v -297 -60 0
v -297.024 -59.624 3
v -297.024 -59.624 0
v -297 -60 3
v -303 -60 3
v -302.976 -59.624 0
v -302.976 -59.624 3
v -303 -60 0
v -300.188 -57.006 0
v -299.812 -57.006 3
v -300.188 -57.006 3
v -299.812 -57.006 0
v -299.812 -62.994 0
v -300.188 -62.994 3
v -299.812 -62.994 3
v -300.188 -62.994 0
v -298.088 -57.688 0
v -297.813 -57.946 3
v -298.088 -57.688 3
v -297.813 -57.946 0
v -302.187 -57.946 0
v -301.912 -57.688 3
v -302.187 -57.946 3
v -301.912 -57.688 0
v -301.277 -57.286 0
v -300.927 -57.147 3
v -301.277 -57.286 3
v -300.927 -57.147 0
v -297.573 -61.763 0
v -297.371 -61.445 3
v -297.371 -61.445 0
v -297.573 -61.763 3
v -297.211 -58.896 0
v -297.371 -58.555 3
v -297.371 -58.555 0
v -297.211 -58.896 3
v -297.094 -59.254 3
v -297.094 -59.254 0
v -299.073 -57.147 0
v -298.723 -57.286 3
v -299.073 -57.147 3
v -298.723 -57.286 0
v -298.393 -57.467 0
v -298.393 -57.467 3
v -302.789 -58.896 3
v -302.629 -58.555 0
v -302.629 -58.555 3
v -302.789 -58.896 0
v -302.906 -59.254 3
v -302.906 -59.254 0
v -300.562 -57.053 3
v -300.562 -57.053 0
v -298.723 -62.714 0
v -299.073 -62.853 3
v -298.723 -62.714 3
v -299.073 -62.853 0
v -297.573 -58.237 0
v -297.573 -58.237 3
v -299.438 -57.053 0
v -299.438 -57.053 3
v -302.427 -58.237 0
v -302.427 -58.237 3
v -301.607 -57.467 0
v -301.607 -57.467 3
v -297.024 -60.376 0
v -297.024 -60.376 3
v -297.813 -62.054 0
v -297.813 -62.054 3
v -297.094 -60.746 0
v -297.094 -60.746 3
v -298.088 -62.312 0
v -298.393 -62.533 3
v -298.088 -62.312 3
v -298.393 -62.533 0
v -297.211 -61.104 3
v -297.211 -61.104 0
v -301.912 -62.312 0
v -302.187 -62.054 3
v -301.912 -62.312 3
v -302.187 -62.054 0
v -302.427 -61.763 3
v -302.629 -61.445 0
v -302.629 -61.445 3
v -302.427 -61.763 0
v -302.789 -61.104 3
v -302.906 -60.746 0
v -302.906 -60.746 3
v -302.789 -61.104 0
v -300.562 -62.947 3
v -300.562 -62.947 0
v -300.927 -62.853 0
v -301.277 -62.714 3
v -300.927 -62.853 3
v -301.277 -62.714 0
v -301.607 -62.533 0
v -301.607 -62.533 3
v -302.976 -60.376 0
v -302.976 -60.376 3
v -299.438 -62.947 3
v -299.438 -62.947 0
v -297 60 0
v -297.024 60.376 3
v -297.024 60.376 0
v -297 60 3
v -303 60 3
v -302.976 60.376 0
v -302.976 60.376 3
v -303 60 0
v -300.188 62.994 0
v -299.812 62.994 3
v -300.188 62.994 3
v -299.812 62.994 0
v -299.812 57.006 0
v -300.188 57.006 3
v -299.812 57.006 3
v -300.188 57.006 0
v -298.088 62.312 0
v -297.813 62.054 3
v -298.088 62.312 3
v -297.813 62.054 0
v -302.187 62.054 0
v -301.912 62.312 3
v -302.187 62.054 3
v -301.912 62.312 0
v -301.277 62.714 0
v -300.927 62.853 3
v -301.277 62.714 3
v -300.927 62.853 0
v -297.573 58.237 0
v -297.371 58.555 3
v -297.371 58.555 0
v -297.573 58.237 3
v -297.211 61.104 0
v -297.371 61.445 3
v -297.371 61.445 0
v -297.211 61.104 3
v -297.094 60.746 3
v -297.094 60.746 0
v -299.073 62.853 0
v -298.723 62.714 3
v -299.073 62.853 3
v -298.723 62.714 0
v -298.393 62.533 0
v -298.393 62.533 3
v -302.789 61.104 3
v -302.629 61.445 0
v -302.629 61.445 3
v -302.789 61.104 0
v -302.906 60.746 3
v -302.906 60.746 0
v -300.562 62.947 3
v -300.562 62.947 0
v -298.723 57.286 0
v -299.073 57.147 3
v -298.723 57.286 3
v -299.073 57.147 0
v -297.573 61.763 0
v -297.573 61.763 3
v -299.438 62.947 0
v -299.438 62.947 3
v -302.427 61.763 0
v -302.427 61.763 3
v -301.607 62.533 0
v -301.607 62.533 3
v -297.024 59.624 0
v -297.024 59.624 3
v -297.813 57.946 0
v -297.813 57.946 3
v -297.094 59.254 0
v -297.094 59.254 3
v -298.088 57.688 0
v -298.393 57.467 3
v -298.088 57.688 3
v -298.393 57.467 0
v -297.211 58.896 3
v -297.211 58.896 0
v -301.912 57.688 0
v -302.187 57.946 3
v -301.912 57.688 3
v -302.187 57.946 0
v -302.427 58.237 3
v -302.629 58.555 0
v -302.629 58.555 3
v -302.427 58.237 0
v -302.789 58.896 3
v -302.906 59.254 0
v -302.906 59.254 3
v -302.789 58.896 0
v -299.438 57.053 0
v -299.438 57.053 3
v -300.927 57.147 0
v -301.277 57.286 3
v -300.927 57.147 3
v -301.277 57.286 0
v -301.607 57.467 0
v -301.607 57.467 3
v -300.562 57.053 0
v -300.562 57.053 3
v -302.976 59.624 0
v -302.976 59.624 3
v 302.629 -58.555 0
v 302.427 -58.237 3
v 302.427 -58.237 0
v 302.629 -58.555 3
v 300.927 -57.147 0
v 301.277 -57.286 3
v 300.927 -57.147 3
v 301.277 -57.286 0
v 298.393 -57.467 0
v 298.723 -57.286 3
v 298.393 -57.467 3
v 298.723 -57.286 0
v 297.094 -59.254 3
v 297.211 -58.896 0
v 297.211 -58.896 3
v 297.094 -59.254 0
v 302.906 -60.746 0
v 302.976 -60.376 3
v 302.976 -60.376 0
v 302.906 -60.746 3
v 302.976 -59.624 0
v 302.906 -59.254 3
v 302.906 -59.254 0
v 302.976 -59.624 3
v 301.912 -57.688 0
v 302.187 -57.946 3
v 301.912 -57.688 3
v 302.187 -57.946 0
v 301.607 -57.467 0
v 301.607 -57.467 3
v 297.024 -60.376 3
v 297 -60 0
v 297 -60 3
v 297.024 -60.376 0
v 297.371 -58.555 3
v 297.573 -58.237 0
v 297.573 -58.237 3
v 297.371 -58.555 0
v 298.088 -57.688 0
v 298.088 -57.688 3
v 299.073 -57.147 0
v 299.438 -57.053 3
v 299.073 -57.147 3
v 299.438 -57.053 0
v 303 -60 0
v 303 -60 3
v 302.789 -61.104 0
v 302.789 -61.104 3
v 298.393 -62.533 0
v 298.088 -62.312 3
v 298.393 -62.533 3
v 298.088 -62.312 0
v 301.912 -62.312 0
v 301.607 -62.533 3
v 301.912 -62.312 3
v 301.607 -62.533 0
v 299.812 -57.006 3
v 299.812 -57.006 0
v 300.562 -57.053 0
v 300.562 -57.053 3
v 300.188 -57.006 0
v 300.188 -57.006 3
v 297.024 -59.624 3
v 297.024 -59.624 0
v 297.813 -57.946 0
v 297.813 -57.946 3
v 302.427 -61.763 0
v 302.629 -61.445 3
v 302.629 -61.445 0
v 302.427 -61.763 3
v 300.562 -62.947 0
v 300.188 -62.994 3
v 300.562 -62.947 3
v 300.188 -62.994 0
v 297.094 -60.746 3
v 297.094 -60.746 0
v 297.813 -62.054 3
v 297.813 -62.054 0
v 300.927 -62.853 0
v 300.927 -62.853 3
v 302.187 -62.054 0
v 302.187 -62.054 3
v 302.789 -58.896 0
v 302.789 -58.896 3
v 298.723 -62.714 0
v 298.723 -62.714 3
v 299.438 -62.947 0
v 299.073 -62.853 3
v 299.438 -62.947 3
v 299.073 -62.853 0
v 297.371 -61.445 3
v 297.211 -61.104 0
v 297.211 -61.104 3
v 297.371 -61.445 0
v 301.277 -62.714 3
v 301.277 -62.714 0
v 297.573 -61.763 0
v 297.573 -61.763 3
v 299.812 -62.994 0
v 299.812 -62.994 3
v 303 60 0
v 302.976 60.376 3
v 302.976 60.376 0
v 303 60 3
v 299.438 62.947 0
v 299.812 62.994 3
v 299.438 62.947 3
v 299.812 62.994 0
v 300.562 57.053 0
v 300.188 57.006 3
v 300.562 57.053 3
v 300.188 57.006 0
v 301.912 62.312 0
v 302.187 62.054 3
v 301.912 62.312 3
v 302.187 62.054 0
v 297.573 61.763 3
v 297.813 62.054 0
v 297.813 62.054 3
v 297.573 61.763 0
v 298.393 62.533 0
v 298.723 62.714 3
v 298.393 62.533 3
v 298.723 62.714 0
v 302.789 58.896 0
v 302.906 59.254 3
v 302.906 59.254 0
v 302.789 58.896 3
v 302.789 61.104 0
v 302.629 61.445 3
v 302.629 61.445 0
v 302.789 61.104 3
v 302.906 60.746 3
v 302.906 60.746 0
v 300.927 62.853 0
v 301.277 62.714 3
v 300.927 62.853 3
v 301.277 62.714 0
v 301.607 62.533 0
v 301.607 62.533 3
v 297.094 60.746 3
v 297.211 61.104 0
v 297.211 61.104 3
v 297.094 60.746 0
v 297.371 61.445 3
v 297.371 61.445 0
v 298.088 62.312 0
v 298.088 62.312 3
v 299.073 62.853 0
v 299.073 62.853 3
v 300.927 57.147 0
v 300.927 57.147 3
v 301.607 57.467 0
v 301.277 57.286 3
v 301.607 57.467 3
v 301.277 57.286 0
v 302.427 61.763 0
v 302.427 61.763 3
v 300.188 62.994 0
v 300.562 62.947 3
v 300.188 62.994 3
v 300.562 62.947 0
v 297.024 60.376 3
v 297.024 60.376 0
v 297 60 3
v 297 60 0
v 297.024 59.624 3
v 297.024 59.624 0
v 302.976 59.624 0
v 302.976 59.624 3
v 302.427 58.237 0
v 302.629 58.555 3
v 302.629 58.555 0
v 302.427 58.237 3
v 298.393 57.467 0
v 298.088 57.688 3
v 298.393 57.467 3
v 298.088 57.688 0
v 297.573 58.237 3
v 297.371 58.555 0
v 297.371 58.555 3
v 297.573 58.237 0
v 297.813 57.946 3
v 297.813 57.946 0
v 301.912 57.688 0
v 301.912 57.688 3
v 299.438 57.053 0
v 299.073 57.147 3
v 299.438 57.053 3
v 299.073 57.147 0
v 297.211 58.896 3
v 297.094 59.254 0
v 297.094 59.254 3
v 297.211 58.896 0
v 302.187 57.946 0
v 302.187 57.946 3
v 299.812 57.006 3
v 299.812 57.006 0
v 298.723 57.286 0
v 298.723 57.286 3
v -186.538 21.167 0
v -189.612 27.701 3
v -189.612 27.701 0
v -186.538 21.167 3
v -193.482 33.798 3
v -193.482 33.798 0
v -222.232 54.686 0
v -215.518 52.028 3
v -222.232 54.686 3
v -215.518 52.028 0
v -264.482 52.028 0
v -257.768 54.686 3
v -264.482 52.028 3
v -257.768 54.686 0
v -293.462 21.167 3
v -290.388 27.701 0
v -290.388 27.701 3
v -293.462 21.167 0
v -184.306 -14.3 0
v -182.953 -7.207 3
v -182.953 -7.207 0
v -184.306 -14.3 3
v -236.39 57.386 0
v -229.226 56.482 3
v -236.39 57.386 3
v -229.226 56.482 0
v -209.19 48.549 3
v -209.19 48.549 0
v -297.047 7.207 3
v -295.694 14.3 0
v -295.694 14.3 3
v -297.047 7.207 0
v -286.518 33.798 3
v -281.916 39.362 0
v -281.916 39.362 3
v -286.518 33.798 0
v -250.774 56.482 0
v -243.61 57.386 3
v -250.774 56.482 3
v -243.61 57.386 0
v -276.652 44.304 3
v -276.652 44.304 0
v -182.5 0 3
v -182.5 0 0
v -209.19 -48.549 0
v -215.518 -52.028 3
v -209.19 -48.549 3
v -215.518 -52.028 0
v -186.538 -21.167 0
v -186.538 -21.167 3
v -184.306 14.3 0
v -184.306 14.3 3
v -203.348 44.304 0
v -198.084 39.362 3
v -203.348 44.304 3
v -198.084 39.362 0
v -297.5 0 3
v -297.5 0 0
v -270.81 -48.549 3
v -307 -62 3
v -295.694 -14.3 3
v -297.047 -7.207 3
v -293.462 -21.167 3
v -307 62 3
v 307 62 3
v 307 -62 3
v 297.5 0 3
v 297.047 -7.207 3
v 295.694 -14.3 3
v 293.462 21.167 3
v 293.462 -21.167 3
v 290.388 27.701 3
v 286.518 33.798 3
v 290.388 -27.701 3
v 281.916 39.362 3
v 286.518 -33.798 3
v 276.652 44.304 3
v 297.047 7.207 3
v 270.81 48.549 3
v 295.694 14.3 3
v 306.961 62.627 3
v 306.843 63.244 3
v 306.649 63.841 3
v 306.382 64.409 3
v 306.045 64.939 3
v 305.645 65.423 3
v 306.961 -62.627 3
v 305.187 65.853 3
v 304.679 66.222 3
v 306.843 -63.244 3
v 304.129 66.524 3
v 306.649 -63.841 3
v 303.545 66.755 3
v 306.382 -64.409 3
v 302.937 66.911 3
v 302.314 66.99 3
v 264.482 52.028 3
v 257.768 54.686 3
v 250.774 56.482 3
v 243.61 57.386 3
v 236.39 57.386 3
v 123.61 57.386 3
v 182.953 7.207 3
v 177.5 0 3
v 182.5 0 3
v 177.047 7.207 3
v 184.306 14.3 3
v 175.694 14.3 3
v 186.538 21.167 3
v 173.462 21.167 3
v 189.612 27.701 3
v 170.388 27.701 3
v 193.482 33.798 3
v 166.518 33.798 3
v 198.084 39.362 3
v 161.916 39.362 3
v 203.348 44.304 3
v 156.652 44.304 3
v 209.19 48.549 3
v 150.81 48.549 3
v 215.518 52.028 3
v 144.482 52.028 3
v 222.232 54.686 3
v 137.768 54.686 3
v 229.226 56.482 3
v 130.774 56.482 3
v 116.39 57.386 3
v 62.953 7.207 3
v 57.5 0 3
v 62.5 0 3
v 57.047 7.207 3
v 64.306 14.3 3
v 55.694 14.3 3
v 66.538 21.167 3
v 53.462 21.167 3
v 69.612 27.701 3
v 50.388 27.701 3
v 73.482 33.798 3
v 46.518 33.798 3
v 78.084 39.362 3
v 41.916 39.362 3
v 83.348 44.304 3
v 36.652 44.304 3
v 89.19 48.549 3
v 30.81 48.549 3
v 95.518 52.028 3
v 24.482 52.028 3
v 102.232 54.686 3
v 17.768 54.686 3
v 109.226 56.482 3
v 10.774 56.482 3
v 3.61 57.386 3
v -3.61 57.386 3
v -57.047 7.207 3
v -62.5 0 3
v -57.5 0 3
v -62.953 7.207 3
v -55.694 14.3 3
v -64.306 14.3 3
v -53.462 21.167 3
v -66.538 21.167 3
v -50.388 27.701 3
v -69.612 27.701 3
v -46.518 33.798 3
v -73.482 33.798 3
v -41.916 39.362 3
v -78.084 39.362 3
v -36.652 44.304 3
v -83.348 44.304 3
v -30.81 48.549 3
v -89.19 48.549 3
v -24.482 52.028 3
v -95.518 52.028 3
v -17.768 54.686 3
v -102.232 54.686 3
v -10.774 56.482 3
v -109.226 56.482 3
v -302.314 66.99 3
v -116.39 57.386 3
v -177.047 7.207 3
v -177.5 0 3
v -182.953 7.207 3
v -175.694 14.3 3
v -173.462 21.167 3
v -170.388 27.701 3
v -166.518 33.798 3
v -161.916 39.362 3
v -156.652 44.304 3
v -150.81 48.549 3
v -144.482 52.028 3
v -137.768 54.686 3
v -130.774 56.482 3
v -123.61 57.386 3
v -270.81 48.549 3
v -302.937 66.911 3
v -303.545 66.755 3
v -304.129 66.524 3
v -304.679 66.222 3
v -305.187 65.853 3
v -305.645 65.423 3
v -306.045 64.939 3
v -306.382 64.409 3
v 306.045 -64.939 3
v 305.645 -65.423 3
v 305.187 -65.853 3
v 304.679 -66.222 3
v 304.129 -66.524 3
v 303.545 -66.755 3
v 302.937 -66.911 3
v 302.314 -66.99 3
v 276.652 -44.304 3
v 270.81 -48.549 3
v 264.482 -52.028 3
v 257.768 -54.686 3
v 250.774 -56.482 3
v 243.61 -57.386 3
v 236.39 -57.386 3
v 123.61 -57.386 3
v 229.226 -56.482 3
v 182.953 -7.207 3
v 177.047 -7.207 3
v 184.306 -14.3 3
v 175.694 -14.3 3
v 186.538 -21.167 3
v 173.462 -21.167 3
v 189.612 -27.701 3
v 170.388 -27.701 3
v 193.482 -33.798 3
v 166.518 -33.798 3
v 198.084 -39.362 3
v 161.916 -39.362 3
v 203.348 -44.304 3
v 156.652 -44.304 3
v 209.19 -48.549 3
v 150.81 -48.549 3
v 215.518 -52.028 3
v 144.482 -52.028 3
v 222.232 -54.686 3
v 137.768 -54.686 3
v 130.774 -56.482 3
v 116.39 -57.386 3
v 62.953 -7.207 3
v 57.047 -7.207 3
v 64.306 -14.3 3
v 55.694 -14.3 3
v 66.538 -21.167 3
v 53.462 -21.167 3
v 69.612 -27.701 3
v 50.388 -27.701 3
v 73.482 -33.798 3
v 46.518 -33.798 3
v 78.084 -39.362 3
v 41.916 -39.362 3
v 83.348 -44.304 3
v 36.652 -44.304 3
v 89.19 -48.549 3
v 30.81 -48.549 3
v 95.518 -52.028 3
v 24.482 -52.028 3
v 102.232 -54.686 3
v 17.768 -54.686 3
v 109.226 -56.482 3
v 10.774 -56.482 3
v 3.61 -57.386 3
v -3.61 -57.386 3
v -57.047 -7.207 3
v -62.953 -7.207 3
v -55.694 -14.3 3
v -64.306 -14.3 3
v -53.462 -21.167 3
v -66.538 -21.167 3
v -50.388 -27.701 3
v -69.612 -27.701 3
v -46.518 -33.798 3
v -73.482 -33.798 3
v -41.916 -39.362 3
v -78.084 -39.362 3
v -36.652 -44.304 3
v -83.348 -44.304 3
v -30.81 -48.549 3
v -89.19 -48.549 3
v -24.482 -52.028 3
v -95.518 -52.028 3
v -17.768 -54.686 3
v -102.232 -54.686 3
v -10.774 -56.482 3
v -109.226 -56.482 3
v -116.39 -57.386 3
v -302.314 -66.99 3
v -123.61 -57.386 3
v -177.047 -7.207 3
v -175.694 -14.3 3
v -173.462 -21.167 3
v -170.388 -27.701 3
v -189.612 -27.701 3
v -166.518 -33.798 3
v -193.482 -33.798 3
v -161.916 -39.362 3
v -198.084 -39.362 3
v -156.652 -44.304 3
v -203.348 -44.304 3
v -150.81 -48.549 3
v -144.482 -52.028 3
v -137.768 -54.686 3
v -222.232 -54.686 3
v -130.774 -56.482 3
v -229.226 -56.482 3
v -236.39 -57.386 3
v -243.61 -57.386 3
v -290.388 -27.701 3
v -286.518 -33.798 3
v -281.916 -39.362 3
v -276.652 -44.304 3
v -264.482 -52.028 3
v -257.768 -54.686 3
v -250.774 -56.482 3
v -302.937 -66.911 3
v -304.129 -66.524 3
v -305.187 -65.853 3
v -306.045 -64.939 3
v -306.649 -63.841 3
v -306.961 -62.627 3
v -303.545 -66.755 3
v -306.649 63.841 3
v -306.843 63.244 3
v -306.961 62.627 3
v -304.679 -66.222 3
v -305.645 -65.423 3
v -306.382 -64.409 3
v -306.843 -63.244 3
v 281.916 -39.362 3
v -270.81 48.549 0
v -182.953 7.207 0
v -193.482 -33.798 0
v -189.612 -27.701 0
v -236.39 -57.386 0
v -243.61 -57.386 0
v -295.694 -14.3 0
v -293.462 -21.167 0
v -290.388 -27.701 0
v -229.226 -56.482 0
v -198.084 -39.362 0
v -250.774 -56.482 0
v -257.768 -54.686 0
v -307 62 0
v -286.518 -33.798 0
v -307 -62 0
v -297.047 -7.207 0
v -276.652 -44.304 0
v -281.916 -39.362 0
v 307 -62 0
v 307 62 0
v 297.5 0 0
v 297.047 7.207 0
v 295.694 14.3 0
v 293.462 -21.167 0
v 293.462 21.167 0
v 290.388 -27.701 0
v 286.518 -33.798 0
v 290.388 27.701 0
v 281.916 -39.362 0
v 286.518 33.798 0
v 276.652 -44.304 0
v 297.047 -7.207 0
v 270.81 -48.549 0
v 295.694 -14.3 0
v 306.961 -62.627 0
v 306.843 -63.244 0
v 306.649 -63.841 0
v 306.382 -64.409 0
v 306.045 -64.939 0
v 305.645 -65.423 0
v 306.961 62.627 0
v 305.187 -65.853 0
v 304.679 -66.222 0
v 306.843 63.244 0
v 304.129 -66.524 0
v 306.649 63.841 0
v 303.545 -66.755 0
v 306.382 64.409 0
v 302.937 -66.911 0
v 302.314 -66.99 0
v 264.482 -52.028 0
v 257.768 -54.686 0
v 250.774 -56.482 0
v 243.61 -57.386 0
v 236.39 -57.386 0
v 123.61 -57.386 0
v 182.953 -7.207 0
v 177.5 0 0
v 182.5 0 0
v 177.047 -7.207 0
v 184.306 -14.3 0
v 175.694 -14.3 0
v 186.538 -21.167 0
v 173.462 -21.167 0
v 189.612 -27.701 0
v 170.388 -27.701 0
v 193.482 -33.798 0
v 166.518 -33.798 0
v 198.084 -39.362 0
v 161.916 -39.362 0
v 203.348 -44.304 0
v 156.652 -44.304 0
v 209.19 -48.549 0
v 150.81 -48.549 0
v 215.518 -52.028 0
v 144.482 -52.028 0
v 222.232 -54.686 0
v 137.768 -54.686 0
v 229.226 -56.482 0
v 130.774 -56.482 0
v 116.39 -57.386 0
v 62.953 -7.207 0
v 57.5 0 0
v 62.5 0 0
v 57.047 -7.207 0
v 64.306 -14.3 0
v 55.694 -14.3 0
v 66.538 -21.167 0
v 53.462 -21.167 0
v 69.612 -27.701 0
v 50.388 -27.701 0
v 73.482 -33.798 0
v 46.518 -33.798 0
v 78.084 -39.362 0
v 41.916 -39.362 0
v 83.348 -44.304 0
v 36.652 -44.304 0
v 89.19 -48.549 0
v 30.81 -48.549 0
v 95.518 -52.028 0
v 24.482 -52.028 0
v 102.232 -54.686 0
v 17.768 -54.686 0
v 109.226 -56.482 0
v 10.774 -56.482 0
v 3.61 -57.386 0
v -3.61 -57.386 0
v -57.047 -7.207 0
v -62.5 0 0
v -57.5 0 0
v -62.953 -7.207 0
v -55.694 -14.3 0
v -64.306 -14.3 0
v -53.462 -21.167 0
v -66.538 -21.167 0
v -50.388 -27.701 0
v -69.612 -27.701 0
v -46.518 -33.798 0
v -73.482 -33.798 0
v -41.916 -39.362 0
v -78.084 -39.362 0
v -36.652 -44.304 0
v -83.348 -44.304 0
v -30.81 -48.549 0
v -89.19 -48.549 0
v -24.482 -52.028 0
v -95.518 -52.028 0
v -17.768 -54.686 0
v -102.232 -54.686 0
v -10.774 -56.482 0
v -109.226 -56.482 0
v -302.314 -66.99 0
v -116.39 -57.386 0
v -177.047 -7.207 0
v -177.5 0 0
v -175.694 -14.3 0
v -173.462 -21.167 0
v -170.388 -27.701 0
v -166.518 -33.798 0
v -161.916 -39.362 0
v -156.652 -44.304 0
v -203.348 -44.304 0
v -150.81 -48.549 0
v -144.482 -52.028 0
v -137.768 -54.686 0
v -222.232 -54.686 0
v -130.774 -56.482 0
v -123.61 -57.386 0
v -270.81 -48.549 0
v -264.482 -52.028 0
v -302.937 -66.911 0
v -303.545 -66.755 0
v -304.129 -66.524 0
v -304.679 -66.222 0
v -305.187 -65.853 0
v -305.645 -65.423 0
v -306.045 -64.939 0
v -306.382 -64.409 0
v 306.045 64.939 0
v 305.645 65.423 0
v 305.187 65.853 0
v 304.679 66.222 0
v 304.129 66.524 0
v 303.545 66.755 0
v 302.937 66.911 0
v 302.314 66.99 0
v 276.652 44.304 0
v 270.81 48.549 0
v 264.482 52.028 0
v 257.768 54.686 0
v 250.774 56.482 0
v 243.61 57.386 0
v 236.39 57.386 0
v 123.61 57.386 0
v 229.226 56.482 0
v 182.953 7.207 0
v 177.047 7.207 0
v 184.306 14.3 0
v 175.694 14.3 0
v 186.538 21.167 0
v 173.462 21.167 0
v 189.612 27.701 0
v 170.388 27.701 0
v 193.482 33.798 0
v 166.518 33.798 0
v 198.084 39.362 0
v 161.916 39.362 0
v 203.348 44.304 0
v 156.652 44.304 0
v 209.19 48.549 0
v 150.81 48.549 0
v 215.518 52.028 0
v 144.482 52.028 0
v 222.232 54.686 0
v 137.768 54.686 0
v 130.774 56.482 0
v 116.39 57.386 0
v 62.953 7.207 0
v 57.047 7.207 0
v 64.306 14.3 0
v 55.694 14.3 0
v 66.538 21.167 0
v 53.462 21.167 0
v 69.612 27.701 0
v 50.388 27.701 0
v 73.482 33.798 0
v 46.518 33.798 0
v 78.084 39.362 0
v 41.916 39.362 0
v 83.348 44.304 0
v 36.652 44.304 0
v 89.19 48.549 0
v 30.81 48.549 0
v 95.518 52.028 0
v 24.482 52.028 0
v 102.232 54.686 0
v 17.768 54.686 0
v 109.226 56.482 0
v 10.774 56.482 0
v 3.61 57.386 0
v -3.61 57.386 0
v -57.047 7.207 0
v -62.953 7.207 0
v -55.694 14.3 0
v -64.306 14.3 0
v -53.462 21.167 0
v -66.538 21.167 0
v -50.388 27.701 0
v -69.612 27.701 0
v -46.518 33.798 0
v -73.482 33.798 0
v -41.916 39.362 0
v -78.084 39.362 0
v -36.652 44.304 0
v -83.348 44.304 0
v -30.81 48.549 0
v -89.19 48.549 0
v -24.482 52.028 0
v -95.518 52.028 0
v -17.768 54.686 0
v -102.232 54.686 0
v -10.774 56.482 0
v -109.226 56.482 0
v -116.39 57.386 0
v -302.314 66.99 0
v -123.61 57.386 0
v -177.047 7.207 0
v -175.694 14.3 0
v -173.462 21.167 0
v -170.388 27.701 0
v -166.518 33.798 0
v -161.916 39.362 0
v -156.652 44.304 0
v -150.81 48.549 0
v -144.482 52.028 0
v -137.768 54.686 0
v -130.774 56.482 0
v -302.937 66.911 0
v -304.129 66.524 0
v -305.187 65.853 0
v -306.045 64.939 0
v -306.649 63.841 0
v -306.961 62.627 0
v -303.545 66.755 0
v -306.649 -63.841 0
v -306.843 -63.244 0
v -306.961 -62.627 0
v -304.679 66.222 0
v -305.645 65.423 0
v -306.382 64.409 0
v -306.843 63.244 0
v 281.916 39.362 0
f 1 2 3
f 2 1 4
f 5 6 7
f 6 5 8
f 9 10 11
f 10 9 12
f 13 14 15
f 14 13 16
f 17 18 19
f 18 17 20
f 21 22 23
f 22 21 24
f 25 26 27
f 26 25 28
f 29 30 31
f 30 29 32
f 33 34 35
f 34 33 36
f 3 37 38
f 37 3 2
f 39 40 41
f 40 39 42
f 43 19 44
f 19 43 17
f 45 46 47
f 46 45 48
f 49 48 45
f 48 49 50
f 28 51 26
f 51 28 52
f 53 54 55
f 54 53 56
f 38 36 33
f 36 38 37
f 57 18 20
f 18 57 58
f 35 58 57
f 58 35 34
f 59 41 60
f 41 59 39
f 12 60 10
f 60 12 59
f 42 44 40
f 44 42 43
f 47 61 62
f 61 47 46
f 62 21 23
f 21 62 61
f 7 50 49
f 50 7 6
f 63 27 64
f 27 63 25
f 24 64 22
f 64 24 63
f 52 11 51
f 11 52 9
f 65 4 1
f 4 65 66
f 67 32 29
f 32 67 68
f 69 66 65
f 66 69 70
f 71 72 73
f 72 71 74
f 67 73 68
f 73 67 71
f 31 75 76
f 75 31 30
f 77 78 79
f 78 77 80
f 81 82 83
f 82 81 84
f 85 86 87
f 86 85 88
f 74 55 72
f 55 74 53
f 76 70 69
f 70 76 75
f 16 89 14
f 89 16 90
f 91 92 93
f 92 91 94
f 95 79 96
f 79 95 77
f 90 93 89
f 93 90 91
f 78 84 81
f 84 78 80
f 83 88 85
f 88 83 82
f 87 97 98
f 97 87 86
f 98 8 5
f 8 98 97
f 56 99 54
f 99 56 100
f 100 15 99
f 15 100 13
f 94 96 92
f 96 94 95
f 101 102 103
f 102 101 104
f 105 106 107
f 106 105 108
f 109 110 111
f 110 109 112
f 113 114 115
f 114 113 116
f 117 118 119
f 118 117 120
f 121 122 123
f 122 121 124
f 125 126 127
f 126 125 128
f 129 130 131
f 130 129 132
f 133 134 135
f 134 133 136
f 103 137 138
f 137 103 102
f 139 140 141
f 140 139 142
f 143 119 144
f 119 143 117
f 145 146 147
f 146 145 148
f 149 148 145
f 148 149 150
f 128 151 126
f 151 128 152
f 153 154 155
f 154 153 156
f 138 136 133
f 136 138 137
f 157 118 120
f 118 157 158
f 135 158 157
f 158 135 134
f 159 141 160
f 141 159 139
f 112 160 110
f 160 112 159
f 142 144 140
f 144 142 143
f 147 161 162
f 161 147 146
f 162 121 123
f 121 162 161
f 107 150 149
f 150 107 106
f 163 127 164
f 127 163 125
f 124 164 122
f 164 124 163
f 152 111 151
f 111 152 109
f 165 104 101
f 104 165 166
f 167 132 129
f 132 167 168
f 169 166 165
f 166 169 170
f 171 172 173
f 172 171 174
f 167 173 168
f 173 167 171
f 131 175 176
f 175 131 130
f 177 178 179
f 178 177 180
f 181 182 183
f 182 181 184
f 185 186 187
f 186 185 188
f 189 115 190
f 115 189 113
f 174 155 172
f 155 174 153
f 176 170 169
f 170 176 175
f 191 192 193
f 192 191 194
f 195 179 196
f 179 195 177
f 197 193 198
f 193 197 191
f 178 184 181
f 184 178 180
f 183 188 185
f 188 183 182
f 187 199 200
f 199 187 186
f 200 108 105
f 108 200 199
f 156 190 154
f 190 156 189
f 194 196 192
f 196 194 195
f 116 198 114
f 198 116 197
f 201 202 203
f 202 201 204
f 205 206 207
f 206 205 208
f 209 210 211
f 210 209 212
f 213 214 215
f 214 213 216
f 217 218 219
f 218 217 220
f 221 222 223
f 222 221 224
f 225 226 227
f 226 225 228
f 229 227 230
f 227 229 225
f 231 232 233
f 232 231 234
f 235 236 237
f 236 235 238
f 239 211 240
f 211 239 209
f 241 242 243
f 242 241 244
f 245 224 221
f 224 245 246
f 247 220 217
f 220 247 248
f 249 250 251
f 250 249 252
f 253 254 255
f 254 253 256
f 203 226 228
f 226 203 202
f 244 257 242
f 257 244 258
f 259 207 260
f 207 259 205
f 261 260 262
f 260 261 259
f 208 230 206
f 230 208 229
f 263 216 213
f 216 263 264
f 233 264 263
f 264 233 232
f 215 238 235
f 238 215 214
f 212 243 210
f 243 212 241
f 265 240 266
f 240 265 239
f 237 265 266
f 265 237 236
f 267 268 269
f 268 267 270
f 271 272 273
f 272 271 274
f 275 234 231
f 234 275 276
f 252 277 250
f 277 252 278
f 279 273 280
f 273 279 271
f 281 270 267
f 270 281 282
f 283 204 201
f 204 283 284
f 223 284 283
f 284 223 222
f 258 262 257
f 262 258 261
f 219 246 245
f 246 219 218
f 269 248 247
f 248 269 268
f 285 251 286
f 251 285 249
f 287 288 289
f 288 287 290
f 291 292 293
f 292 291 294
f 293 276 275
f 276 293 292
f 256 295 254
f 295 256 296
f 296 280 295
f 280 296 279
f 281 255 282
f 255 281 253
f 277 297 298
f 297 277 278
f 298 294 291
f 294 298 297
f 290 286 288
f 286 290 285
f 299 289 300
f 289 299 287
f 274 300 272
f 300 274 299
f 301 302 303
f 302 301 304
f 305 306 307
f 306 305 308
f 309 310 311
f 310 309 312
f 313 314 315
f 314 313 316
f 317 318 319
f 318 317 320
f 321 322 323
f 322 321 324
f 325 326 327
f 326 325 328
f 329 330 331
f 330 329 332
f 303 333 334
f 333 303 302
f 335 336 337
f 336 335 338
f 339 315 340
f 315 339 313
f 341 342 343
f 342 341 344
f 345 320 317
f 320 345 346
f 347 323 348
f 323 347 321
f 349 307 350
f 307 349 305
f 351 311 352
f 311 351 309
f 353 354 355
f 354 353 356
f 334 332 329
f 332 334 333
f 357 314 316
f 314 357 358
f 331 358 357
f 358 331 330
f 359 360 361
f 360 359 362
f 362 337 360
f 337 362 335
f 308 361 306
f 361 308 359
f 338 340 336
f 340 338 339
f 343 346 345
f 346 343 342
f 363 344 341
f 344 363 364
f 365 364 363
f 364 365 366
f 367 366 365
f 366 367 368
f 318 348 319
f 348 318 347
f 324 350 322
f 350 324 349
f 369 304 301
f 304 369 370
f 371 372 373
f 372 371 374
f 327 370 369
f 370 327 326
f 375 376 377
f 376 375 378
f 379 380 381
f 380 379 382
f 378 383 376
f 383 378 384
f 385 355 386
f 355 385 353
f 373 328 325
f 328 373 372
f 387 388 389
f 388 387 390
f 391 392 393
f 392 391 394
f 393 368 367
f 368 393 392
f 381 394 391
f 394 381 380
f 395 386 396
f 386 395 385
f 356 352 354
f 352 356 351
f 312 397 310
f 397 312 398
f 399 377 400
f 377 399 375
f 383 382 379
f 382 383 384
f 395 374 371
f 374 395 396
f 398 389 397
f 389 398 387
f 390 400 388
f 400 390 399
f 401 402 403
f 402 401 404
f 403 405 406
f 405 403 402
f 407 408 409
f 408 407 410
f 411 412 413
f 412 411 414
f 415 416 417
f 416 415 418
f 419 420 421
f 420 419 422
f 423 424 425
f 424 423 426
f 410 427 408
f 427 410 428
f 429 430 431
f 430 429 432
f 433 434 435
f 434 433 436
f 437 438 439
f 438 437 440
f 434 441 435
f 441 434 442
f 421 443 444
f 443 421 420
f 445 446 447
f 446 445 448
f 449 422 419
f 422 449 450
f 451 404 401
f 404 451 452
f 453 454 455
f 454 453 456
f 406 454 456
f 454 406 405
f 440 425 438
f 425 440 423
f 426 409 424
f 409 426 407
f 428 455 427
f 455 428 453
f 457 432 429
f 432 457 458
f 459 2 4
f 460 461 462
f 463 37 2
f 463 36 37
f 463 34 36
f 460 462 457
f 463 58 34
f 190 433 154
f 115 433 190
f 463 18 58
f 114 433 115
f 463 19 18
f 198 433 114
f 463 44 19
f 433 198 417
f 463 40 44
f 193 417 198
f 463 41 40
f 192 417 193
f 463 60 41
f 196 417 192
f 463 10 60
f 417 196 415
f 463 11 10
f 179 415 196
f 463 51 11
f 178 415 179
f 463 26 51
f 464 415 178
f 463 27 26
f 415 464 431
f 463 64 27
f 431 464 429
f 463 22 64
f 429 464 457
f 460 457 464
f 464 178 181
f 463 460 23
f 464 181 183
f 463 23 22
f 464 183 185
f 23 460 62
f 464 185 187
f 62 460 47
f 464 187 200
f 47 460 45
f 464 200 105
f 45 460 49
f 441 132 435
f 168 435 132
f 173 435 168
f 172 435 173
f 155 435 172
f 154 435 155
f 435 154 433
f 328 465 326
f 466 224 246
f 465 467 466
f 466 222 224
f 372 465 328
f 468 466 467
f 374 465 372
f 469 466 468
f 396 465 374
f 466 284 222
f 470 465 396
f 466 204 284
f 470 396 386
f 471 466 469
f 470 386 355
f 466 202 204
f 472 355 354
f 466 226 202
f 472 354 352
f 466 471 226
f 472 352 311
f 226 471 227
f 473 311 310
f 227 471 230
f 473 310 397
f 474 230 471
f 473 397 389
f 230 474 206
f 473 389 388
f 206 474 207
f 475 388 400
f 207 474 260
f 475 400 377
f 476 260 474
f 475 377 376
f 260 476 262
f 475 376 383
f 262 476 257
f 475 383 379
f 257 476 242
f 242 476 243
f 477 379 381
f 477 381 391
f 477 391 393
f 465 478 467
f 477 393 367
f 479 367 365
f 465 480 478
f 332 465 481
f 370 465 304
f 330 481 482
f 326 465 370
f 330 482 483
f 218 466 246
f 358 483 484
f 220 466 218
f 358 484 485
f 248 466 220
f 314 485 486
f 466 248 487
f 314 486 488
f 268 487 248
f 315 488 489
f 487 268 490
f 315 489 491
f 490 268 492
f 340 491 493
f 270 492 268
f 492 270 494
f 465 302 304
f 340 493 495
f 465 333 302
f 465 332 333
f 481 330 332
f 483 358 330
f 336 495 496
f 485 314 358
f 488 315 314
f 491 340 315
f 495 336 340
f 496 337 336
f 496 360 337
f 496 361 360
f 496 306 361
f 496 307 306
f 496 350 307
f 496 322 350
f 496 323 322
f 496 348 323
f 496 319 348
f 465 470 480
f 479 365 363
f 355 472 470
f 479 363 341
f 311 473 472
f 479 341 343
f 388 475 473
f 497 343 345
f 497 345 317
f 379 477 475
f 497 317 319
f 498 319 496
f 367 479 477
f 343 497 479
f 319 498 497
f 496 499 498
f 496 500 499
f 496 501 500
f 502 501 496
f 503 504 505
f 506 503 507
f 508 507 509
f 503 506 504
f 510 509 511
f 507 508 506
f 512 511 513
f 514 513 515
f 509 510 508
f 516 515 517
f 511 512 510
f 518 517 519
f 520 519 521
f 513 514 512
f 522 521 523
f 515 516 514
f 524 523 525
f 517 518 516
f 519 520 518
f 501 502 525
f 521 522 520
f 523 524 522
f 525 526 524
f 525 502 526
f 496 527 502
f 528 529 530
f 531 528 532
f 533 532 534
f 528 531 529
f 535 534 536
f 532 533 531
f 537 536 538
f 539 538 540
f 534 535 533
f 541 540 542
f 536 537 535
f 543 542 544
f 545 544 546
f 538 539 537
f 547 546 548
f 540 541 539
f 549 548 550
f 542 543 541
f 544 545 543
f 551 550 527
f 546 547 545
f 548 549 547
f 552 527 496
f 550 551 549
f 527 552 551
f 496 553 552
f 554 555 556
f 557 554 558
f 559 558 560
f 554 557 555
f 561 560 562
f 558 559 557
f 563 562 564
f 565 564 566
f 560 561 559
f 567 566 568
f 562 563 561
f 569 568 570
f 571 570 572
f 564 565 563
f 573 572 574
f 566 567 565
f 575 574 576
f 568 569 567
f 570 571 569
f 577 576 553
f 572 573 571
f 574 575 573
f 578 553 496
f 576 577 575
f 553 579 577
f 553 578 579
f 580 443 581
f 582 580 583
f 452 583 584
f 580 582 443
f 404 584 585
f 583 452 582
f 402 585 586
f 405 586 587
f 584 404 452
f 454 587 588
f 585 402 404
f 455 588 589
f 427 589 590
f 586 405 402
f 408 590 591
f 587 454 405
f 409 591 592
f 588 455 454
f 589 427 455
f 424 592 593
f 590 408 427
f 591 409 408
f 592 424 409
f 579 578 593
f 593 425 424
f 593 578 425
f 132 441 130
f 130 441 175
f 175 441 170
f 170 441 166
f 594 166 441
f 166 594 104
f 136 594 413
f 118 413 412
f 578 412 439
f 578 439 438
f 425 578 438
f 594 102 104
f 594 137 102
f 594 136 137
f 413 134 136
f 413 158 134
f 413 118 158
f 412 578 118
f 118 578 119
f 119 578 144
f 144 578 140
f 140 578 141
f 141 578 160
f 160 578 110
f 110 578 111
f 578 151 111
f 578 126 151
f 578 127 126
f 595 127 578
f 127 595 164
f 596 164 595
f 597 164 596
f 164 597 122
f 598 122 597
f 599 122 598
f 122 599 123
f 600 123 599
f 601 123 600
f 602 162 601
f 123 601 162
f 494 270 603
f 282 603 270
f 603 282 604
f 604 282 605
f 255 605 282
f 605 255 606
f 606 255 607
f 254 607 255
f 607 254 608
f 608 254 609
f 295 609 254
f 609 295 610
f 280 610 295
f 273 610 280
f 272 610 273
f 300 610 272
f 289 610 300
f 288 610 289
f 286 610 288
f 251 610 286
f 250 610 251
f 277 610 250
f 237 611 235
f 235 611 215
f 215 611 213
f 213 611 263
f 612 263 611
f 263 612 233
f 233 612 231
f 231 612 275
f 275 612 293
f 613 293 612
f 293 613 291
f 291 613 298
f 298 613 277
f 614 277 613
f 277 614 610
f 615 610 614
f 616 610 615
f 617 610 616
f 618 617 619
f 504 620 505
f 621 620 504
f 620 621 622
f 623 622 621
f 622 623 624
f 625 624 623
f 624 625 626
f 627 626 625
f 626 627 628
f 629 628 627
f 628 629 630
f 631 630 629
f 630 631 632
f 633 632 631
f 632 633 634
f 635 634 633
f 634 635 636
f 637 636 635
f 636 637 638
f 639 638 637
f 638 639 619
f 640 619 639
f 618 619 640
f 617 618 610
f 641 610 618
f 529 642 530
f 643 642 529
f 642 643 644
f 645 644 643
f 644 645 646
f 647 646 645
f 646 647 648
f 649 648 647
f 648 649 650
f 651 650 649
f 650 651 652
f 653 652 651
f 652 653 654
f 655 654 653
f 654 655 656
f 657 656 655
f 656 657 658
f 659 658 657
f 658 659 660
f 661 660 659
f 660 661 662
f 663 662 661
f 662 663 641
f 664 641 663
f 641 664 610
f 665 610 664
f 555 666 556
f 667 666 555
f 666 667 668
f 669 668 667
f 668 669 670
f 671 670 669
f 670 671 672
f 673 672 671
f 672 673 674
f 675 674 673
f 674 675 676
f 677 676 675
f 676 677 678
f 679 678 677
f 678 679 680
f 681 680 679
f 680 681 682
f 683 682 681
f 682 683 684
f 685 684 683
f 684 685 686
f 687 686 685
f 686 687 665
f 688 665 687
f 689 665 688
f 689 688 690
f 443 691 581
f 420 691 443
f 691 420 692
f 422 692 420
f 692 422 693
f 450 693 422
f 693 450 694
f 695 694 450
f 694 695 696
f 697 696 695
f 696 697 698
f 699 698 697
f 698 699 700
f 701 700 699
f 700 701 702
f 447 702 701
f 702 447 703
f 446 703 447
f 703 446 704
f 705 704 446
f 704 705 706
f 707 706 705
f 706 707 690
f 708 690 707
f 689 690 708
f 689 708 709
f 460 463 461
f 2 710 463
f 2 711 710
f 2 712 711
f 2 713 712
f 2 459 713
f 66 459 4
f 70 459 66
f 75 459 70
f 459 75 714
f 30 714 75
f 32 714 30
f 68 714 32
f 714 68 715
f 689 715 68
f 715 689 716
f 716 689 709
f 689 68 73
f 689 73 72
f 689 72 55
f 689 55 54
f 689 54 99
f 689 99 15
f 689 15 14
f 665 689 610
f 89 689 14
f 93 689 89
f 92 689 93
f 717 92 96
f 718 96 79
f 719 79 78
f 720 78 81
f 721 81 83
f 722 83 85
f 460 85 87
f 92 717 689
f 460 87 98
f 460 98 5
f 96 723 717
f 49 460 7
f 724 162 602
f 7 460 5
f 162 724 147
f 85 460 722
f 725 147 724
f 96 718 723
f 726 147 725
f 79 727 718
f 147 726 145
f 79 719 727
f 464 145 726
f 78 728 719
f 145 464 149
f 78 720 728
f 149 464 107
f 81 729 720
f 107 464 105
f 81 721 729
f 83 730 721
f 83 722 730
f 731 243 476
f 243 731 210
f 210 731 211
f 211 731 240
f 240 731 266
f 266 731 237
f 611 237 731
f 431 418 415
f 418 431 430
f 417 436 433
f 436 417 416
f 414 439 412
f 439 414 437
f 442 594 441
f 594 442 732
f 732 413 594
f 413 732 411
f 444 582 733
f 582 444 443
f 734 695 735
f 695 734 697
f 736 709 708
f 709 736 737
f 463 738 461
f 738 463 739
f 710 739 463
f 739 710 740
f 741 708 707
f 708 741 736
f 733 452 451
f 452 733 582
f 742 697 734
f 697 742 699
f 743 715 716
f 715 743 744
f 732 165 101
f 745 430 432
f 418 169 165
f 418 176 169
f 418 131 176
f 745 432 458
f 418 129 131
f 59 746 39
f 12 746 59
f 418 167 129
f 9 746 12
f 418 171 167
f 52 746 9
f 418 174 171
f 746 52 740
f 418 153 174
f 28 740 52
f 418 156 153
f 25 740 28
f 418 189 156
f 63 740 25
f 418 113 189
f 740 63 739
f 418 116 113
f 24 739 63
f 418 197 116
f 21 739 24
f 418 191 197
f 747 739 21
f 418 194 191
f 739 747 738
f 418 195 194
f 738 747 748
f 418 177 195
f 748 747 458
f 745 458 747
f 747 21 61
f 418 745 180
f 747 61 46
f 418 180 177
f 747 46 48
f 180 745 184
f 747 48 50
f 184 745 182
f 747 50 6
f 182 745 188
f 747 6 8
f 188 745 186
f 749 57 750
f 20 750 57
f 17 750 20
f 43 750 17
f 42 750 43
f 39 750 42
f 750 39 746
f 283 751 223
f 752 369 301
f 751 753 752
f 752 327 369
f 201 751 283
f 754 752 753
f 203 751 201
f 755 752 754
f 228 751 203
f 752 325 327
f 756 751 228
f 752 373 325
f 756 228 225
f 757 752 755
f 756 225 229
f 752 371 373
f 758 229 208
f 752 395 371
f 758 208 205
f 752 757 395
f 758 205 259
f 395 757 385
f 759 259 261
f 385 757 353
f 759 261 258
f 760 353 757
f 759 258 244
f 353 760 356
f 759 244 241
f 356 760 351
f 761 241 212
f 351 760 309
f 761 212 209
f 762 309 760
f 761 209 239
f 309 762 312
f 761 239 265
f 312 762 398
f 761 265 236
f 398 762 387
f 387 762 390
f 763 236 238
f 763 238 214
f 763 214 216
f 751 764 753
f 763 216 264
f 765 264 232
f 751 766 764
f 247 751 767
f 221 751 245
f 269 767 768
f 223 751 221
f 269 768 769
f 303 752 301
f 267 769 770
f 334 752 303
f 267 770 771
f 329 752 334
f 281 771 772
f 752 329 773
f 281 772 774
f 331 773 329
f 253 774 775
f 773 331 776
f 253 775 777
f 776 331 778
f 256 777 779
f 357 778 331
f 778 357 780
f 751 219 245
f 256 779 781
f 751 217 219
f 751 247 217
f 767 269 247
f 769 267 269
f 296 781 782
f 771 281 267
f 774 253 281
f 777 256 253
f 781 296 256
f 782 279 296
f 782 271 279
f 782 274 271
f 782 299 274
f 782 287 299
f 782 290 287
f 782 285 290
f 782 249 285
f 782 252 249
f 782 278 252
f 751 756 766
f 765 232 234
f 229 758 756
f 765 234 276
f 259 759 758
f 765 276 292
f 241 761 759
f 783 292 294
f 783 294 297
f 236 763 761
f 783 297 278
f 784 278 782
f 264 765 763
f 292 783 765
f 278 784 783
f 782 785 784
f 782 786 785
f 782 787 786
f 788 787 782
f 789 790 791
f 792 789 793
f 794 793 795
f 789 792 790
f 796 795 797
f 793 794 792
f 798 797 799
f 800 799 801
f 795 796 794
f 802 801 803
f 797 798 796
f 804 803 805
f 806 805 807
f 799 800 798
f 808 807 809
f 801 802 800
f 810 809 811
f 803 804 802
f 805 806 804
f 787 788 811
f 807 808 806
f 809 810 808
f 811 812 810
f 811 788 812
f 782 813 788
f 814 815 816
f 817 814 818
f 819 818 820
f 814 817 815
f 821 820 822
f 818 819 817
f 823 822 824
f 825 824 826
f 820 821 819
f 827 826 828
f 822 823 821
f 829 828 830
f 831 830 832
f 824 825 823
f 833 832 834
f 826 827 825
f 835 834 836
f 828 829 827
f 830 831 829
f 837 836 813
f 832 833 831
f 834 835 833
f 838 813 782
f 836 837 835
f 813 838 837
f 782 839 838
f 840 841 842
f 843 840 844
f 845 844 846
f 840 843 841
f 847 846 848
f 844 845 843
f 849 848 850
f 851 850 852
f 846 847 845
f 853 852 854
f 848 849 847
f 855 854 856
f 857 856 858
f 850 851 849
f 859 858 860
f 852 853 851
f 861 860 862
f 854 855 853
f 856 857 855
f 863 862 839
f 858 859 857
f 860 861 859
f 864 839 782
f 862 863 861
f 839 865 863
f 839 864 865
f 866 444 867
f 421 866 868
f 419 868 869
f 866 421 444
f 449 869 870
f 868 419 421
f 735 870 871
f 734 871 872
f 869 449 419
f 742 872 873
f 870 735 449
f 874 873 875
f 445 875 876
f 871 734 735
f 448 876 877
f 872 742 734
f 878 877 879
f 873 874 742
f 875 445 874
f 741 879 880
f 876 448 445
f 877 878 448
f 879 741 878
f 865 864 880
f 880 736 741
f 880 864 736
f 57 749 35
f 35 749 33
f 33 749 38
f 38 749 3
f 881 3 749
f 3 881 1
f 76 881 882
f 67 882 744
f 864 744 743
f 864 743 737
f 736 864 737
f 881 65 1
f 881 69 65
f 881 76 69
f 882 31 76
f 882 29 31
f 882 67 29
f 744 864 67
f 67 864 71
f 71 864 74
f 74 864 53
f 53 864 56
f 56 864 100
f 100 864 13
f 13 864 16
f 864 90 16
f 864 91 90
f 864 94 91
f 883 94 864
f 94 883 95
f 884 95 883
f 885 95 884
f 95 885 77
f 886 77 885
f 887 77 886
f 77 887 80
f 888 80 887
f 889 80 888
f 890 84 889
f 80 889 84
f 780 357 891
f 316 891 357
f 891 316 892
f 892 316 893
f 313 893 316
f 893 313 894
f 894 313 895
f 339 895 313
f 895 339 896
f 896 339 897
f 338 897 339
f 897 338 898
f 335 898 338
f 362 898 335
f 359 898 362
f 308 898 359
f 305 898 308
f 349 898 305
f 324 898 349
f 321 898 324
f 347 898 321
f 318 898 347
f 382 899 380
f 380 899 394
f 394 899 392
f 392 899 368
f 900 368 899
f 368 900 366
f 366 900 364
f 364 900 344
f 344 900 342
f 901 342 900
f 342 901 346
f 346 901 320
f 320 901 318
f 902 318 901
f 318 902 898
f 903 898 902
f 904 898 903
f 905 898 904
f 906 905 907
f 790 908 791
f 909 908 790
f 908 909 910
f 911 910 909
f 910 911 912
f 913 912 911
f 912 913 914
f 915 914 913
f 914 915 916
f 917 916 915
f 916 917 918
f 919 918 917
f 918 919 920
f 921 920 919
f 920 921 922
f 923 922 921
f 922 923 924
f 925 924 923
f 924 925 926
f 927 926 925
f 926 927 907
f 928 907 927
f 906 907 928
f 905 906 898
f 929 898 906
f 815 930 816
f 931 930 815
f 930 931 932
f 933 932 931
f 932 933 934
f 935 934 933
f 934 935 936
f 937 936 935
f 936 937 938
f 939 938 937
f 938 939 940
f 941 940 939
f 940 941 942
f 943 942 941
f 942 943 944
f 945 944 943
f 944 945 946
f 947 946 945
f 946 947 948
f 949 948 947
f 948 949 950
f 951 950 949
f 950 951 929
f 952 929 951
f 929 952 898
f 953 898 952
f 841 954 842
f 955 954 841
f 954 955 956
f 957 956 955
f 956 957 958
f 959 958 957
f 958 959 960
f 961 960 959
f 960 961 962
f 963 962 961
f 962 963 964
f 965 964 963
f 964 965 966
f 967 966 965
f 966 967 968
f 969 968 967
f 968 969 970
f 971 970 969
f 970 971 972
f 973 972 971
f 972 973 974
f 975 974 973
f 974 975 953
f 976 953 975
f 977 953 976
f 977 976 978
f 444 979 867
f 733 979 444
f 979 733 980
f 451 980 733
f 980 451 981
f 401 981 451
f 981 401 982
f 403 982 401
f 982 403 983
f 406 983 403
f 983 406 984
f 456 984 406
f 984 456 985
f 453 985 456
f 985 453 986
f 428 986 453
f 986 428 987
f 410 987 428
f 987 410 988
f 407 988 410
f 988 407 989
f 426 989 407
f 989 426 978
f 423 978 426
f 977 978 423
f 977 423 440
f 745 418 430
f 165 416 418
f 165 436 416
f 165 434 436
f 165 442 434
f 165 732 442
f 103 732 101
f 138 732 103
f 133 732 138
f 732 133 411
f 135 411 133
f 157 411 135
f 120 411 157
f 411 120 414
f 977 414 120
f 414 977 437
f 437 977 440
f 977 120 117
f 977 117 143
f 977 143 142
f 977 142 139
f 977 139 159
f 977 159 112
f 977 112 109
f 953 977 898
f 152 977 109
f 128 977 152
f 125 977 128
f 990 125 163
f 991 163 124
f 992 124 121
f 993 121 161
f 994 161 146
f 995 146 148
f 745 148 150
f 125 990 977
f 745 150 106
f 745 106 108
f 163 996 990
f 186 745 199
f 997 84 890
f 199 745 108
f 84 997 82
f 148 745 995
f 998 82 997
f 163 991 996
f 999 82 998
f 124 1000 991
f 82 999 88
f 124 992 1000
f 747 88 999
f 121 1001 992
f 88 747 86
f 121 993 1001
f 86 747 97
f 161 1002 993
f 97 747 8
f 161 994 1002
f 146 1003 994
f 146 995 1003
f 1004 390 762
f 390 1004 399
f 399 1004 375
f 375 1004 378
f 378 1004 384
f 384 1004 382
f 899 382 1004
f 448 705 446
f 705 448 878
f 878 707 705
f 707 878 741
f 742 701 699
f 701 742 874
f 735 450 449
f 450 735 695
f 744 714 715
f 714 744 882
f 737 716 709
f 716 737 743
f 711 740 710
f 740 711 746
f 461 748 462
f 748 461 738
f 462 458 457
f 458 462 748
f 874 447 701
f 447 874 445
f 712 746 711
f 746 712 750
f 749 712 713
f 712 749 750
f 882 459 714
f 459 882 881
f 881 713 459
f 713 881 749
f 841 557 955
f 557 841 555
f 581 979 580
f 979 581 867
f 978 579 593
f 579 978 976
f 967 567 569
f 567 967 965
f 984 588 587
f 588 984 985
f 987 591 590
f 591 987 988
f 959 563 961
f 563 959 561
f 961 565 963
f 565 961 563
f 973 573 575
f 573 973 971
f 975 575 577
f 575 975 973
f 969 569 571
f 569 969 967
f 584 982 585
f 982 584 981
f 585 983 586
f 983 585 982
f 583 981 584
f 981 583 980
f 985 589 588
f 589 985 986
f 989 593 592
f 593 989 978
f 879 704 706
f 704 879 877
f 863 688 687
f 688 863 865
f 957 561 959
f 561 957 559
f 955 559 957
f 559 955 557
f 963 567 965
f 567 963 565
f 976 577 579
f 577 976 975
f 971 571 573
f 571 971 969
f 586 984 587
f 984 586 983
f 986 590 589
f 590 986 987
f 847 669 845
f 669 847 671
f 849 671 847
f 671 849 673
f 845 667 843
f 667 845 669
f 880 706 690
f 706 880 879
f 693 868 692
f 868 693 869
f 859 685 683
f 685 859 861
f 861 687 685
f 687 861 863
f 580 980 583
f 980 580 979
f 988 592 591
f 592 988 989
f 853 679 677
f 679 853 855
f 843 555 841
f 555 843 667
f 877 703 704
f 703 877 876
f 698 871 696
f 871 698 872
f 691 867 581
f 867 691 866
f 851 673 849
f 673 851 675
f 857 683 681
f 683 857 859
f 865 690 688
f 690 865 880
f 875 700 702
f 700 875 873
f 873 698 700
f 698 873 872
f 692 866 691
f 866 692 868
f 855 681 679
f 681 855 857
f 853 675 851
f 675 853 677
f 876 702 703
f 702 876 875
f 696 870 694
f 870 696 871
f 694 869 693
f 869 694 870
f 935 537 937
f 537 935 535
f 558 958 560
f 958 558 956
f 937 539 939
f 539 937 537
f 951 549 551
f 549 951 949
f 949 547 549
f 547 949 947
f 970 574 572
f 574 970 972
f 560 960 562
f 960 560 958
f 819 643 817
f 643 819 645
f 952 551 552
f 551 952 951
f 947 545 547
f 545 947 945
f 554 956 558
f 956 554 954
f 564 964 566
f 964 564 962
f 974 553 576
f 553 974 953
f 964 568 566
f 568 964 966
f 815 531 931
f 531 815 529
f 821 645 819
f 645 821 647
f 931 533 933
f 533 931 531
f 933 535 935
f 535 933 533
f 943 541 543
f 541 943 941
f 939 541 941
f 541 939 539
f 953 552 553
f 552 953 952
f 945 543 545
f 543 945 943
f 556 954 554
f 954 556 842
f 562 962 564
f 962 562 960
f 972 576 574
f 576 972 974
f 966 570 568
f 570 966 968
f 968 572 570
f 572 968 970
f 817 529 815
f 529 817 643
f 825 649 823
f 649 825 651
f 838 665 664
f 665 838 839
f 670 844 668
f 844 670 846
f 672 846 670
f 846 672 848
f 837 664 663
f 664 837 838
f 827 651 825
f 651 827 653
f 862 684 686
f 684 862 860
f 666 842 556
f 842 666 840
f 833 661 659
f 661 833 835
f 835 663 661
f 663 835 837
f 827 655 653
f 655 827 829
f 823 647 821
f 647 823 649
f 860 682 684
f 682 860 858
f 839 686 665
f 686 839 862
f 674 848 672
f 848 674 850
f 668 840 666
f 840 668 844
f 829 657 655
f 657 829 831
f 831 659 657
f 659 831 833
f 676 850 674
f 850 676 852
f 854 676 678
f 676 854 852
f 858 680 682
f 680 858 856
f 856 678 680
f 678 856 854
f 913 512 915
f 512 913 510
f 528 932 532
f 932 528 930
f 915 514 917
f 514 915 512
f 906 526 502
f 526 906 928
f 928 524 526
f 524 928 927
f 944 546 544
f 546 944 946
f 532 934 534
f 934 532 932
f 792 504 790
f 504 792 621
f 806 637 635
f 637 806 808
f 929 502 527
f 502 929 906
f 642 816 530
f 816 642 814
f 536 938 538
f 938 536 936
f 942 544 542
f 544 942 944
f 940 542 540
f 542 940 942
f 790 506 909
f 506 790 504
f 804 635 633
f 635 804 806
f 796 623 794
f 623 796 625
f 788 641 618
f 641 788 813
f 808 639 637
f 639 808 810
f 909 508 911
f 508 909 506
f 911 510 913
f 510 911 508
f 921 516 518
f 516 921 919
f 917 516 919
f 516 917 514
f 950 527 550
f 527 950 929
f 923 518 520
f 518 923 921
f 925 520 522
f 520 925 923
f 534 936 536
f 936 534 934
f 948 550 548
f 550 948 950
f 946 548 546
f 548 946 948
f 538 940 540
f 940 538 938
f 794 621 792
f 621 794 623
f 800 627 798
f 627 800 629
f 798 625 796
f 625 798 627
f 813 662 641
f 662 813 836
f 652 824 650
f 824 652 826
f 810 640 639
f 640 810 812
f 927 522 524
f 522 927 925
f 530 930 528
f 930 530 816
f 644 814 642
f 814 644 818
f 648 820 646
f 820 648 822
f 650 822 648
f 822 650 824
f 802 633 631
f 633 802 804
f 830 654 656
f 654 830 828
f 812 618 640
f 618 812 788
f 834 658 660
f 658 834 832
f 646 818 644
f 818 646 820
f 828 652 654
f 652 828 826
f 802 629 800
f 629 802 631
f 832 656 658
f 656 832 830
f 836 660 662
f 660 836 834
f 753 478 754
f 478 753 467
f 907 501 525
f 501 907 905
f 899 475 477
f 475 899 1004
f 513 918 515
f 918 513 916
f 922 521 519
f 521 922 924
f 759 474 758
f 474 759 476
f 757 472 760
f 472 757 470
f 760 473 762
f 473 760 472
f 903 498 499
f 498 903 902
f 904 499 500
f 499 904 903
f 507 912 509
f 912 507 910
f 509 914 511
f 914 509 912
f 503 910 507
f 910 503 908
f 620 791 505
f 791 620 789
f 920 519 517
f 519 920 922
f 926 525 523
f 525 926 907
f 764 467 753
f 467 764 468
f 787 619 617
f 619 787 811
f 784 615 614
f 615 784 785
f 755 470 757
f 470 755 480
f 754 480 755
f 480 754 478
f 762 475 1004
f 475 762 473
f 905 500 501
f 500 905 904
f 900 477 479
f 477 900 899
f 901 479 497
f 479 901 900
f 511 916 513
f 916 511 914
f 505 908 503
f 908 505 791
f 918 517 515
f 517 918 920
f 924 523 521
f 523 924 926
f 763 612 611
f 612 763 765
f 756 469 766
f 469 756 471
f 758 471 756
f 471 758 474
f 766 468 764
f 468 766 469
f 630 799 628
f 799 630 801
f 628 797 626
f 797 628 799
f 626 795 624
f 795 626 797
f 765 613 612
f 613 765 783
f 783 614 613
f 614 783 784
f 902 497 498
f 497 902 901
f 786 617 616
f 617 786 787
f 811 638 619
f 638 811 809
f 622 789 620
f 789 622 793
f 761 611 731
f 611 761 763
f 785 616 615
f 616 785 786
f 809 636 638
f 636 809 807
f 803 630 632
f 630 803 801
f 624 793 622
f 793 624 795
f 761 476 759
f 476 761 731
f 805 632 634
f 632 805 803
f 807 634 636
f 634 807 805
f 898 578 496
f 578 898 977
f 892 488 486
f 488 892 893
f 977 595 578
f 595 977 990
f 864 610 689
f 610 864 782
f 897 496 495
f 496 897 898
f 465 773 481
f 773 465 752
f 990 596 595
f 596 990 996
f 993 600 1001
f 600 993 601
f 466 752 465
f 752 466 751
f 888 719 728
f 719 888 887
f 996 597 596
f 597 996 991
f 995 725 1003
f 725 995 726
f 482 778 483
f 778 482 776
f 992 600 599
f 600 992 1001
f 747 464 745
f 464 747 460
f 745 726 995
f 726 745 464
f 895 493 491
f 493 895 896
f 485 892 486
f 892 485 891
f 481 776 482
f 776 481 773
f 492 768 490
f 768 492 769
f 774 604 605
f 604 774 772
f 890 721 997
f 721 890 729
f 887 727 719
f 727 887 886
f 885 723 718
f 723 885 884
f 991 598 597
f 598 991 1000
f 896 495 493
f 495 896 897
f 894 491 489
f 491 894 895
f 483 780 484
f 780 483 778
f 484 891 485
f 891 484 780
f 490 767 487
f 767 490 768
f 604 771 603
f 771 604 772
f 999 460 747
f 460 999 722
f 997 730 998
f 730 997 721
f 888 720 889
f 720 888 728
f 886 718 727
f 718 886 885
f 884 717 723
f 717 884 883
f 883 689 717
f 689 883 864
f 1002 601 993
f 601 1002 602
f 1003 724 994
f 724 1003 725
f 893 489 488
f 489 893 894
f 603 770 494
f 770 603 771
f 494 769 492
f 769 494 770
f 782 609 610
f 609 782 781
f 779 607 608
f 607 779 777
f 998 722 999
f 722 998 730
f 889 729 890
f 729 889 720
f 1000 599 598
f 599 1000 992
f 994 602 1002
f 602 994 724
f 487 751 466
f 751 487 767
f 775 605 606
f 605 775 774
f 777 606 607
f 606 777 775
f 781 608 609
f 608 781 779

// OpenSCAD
$fn = 50;


difference() {
	union() {
		hull() {
			translate(v = [-302.0000000000, 62.0000000000, 0]) {
				cylinder(h = 3, r = 5);
			}
			translate(v = [302.0000000000, 62.0000000000, 0]) {
				cylinder(h = 3, r = 5);
			}
			translate(v = [-302.0000000000, -62.0000000000, 0]) {
				cylinder(h = 3, r = 5);
			}
			translate(v = [302.0000000000, -62.0000000000, 0]) {
				cylinder(h = 3, r = 5);
			}
		}
	}
	union() {
		#translate(v = [-300.0000000000, -60.0000000000, -100.0000000000]) {
			cylinder(h = 200, r = 3.0000000000);
		}
		#translate(v = [-300.0000000000, 60.0000000000, -100.0000000000]) {
			cylinder(h = 200, r = 3.0000000000);
		}
		#translate(v = [300.0000000000, -60.0000000000, -100.0000000000]) {
			cylinder(h = 200, r = 3.0000000000);
		}
		#translate(v = [300.0000000000, 60.0000000000, -100.0000000000]) {
			cylinder(h = 200, r = 3.0000000000);
		}
		#translate(v = [-240.0000000000, 0, 0]) {
			cylinder(h = 3, r = 57.5000000000);
		}
		#translate(v = [-120.0000000000, 0, 0]) {
			cylinder(h = 3, r = 57.5000000000);
		}
		#cylinder(h = 3, r = 57.5000000000);
		#translate(v = [120.0000000000, 0, 0]) {
			cylinder(h = 3, r = 57.5000000000);
		}
		#translate(v = [240.0000000000, 0, 0]) {
			cylinder(h = 3, r = 57.5000000000);
		}
	}
}
